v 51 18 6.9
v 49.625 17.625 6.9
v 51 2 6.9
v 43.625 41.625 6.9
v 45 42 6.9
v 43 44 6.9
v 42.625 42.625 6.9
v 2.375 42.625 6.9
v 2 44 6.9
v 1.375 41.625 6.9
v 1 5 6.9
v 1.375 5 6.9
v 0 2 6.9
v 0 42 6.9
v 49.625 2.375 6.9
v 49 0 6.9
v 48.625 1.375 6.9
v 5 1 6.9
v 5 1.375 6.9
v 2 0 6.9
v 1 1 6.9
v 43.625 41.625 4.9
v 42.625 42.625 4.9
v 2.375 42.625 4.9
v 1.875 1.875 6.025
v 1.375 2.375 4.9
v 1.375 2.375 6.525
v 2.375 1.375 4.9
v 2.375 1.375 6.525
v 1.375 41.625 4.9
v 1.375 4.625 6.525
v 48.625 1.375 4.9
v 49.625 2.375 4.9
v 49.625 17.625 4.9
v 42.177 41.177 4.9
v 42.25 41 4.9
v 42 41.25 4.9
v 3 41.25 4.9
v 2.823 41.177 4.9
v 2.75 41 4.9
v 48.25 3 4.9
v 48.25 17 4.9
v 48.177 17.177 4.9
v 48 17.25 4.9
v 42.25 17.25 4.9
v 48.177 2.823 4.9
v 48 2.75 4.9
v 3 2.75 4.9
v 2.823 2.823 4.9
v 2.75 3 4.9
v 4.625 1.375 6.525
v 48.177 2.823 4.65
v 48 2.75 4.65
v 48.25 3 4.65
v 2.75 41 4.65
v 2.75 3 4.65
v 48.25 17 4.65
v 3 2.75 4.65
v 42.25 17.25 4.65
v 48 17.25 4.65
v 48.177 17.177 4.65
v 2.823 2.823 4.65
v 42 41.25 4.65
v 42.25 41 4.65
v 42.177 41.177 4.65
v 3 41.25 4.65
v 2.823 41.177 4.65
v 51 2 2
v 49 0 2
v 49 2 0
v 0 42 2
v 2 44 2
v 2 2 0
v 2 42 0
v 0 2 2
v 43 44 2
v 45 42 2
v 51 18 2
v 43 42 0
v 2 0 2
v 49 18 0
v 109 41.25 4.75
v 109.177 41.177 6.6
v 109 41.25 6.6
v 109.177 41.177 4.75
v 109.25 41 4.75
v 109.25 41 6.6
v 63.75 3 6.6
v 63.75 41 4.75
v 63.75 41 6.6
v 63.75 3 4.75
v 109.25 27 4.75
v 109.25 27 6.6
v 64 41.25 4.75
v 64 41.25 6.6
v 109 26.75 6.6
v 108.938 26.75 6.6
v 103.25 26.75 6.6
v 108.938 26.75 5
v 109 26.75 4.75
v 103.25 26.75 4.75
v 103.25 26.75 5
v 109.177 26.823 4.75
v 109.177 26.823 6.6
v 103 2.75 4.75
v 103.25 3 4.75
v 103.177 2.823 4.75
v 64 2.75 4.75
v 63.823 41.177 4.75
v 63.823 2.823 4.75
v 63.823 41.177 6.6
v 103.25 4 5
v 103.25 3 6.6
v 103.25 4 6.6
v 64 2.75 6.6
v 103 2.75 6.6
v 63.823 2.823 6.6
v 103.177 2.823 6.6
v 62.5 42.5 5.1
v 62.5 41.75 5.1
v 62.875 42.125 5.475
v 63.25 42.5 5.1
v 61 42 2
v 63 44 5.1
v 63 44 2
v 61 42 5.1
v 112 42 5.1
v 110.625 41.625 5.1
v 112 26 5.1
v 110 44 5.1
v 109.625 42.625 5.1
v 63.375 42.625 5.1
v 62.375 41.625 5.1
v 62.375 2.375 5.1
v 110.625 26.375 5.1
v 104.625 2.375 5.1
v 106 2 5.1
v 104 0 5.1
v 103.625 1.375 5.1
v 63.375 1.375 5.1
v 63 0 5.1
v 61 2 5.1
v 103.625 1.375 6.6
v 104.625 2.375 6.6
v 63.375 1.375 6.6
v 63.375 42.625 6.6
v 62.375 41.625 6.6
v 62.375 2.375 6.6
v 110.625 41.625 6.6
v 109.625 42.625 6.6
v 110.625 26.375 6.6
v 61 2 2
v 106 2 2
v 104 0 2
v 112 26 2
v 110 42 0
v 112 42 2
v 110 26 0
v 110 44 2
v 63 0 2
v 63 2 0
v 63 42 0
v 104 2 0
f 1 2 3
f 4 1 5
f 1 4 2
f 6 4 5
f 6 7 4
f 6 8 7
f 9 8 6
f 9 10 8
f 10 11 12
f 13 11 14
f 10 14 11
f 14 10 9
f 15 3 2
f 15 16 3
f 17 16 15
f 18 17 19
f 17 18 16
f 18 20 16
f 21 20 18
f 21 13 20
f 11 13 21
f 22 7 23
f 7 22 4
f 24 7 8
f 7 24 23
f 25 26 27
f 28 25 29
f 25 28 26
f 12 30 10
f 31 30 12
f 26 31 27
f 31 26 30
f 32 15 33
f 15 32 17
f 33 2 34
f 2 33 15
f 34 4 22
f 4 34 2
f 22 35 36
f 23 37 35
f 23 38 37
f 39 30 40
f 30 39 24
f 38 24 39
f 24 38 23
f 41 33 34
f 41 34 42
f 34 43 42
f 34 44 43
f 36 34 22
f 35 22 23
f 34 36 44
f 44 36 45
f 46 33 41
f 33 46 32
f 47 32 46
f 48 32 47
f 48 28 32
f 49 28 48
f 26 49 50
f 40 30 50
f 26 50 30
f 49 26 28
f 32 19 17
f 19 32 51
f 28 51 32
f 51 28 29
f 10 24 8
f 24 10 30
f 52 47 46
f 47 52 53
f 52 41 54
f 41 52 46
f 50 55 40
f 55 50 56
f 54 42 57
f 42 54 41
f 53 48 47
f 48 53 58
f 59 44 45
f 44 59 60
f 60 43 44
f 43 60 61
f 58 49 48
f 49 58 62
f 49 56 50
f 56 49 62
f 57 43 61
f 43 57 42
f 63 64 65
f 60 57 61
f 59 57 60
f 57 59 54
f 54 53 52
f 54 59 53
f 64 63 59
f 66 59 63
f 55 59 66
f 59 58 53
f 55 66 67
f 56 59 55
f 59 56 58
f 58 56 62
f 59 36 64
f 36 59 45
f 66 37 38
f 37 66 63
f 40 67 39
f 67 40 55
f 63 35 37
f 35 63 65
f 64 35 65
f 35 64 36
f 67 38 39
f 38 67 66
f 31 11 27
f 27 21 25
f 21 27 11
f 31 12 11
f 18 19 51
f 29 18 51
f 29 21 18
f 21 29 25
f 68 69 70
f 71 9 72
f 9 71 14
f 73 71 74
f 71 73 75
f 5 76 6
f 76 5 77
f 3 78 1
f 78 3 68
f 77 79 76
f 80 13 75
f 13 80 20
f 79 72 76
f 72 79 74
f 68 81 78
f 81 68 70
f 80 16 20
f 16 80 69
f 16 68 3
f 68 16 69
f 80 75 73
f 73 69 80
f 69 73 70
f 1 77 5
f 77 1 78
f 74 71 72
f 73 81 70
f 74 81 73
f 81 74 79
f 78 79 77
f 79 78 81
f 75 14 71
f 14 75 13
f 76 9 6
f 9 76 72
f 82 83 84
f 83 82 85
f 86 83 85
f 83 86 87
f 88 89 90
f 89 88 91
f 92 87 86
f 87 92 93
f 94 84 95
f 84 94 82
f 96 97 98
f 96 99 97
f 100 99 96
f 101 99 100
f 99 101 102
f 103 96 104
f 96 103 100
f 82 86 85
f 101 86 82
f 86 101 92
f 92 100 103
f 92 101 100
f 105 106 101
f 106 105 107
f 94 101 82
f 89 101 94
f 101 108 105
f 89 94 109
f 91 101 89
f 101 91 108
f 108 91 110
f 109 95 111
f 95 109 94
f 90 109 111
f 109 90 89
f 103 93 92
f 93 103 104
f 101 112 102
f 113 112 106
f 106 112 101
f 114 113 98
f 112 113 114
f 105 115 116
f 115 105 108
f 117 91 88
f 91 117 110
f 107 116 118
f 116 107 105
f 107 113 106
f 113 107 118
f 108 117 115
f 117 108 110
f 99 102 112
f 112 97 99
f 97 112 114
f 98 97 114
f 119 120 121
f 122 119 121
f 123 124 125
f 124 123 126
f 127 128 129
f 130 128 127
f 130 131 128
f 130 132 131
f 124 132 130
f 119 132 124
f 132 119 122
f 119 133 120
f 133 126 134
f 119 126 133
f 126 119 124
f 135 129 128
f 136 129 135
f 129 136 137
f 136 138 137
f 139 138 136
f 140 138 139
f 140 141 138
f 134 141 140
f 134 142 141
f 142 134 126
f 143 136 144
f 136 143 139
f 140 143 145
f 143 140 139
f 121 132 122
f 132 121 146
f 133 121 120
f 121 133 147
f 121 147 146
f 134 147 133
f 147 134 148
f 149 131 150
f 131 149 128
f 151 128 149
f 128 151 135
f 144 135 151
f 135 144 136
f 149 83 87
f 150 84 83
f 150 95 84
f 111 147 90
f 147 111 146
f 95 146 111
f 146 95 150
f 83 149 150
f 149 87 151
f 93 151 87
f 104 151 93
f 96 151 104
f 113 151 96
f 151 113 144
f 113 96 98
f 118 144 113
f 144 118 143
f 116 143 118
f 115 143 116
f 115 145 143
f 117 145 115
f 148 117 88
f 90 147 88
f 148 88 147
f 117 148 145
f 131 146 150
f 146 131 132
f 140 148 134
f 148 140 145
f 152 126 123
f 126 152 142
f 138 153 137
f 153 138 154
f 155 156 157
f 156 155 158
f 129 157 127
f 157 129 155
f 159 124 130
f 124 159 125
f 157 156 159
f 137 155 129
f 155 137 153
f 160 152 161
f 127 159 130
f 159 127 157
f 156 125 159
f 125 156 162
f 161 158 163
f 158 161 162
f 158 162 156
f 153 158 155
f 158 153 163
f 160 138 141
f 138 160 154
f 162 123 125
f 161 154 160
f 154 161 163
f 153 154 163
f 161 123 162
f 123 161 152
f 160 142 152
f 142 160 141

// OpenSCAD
// Generated case design for KiCad/ASR33.kicad_pcb
// By https://github.com/revk/PCBCase
// Generated 2022-01-29 10:08:31
// title:	ASR33 driver
// date:	${DATE}
// rev:	1
// comment:	www.me.uk
// comment:	@TheRealRevK
//

// Globals
margin=0.500000;
overlap=2.000000;
casebase=4.900000;
casetop=5.000000;
casewall=3.000000;
fit=0.000000;
edge=2.000000;
pcbthickness=1.600000;
pcbwidth=45.000000;
pcblength=38.000000;
spacing=61.000000;

// PCB
module pcb(h=pcbthickness){linear_extrude(height=h)polygon([[39.000000,14.000000],[45.000000,14.000000],[45.000000,0.000000],[0.000000,0.000000],[0.000000,38.000000],[39.000000,38.000000]]);}

// Populated PCB
module board(pushed=false){
	pcb();
}

module b(cx,cy,z,w,l,h){translate([cx-w/2,cy-l/2,z])cube([w,l,h]);}
height=casebase+pcbthickness+casetop;

module boardf()
{ // This is the board, but stretched up to make a push out in from the front
	render()
	{
		intersection()
		{
			translate([-casewall-1,-casewall-1,-casebase-1]) cube([pcbwidth+casewall*2+2,pcblength+casewall*2+2,height+2]);
			minkowski()
			{
				board(true);
				cylinder(h=height+100,d=margin,$fn=8);
			}
		}
	}
}

module boardb()
{ // This is the board, but stretched down to make a push out in from the back
	render()
	{
		intersection()
		{
			translate([-casewall-1,-casewall-1,-casebase-1]) cube([pcbwidth+casewall*2+2,pcblength+casewall*2+2,height+2]);
			minkowski()
			{
				board(true);
				translate([0,0,-height-100])
				cylinder(h=height+100,d=margin,$fn=8);
			}
		}
	}
}

module boardm()
{
	render()
	{
 		minkowski()
 		{
			translate([0,0,-margin/2])cylinder(d=margin,h=margin,$fn=8);
 			board(false);
		}
		hull()intersection()
    		{
        		translate([0,0,-(casebase-1)])pcb(pcbthickness+(casebase-1)+(casetop-1));
        		board(false);
    		}
 	}
}

module pcbh()
{ // PCB shape for case
	hull()pcb();
}

module pyramid()
{ // A pyramid
 polyhedron(points=[[0,0,0],[-height,-height,height],[-height,height,height],[height,height,height],[height,-height,height]],faces=[[0,1,2],[0,2,3],[0,3,4],[0,4,1],[4,3,2,1]]);
}

module wall(d=0)
{ // The case wall
    	translate([0,0,-casebase-1])
    	minkowski()
    	{
    		pcbh();
	        cylinder(d=margin+d*2,h=height+2-pcbthickness,$fn=8);
   	}
}

module cutf()
{ // This cut up from base in the wall
	intersection()
	{
		boardf();
		difference()
		{
			translate([-casewall+0.01,-casewall+0.01,-casebase+0.01])cube([pcbwidth+casewall*2-0.02,pcblength+casewall*2-0.02,casebase+overlap]);
			wall();
			boardb();
		}
	}
}

module cutb()
{ // The cut down from top in the wall
	intersection()
	{
		boardb();
		difference()
		{
			translate([-casewall+0.01,-casewall+0.01,0.01])cube([pcbwidth+casewall*2-0.02,pcblength+casewall*2-0.02,casetop+pcbthickness]);
			wall();
			boardf();
		}
	}
}

module cutpf()
{ // the push up but pyramid
	render()
	intersection()
	{
		minkowski()
		{
			pyramid();
			cutf();
		}
		difference()
		{
			translate([-casewall-0.01,-casewall-0.01,-casebase-0.01])cube([pcbwidth+casewall*2+0.02,pcblength+casewall*2+0.02,casebase+overlap+0.02]);
			wall();
			board(true);
		}
		translate([-casewall,-casewall,-casebase])case();
	}
}

module cutpb()
{ // the push down but pyramid
	render()
	intersection()
	{
		minkowski()
		{
			scale([1,1,-1])pyramid();
			cutb();
		}
		difference()
		{
			translate([-casewall-0.01,-casewall-0.01,-0.01])cube([pcbwidth+casewall*2+0.02,pcblength+casewall*2+0.02,casetop+pcbthickness+0.02]);
			wall();
			board(true);
		}
		translate([-casewall,-casewall,-casebase])case();
	}
}


module case()
{ // The basic case
        minkowski()
        {
            pcbh();
            hull()
		{
			translate([edge,0,edge])
			cube([casewall*2-edge*2,casewall*2,height-edge*2-pcbthickness]);
			translate([0,edge,edge])
			cube([casewall*2,casewall*2-edge*2,height-edge*2-pcbthickness]);
			translate([edge,edge,0])
			cube([casewall*2-edge*2,casewall*2-edge*2,height-pcbthickness]);
		}
        }
}

module cut(d=0)
{ // The cut point in the wall
	minkowski()
	{
        	pcbh();
		hull()
		{
			translate([casewall/2-d/2-margin/4+casewall/3,casewall/2-d/2-margin/4,casebase])
				cube([casewall+d+margin/2-2*casewall/3,casewall+d+margin/2,casetop+pcbthickness+1]);
			translate([casewall/2-d/2-margin/4,casewall/2-d/2-margin/4+casewall/3,casebase])
				cube([casewall+d+margin/2,casewall+d+margin/2-2*casewall/3,casetop+pcbthickness+1]);
		}
	}
}

module base()
{ // The base
	difference()
	{
		case();
		difference()
		{
			union()
			{
				translate([-1,-1,casebase+overlap])cube([pcbwidth+casewall*2+2,pcblength+casewall*2+2,casetop+1]);
				cut(fit);
			}
		}
		translate([casewall,casewall,casebase])boardf();
		translate([casewall,casewall,casebase])boardm();
		translate([casewall,casewall,casebase])cutpf();
	}
	translate([casewall,casewall,casebase])cutpb();
}

module top()
{
	translate([0,pcblength+casewall*2,height])rotate([180,0,0])
	{
		difference()
		{
			case();
			difference()
			{
				translate([-1,-1,-1])cube([pcbwidth+casewall*2+2,pcblength+casewall*2+2,casebase+overlap-margin+1]);
				cut(-fit);
			}
			translate([casewall,casewall,casebase])boardb();
			translate([casewall,casewall,casebase])boardm();
			translate([casewall,casewall,casebase])cutpb();
		}
		translate([casewall,casewall,casebase])cutpf();
	}
}

module test()
{
	translate([0*spacing,0,0])pcb();
	translate([1*spacing,0,0])wall();
	translate([2*spacing,0,0])board();
	translate([3*spacing,0,0])board(true);
	translate([4*spacing,0,0])boardf();
	translate([5*spacing,0,0])boardb();
	translate([6*spacing,0,0])cutpf();
	translate([7*spacing,0,0])cutpb();
	translate([8*spacing,0,0])cutf();
	translate([9*spacing,0,0])cutb();
	translate([10*spacing,0,0])case();
	translate([11*spacing,0,0])base();
	translate([12*spacing,0,0])top();
}

module parts()
{
	base();
	translate([spacing,0,0])top();
}
base(); translate([spacing,0,0])top();
